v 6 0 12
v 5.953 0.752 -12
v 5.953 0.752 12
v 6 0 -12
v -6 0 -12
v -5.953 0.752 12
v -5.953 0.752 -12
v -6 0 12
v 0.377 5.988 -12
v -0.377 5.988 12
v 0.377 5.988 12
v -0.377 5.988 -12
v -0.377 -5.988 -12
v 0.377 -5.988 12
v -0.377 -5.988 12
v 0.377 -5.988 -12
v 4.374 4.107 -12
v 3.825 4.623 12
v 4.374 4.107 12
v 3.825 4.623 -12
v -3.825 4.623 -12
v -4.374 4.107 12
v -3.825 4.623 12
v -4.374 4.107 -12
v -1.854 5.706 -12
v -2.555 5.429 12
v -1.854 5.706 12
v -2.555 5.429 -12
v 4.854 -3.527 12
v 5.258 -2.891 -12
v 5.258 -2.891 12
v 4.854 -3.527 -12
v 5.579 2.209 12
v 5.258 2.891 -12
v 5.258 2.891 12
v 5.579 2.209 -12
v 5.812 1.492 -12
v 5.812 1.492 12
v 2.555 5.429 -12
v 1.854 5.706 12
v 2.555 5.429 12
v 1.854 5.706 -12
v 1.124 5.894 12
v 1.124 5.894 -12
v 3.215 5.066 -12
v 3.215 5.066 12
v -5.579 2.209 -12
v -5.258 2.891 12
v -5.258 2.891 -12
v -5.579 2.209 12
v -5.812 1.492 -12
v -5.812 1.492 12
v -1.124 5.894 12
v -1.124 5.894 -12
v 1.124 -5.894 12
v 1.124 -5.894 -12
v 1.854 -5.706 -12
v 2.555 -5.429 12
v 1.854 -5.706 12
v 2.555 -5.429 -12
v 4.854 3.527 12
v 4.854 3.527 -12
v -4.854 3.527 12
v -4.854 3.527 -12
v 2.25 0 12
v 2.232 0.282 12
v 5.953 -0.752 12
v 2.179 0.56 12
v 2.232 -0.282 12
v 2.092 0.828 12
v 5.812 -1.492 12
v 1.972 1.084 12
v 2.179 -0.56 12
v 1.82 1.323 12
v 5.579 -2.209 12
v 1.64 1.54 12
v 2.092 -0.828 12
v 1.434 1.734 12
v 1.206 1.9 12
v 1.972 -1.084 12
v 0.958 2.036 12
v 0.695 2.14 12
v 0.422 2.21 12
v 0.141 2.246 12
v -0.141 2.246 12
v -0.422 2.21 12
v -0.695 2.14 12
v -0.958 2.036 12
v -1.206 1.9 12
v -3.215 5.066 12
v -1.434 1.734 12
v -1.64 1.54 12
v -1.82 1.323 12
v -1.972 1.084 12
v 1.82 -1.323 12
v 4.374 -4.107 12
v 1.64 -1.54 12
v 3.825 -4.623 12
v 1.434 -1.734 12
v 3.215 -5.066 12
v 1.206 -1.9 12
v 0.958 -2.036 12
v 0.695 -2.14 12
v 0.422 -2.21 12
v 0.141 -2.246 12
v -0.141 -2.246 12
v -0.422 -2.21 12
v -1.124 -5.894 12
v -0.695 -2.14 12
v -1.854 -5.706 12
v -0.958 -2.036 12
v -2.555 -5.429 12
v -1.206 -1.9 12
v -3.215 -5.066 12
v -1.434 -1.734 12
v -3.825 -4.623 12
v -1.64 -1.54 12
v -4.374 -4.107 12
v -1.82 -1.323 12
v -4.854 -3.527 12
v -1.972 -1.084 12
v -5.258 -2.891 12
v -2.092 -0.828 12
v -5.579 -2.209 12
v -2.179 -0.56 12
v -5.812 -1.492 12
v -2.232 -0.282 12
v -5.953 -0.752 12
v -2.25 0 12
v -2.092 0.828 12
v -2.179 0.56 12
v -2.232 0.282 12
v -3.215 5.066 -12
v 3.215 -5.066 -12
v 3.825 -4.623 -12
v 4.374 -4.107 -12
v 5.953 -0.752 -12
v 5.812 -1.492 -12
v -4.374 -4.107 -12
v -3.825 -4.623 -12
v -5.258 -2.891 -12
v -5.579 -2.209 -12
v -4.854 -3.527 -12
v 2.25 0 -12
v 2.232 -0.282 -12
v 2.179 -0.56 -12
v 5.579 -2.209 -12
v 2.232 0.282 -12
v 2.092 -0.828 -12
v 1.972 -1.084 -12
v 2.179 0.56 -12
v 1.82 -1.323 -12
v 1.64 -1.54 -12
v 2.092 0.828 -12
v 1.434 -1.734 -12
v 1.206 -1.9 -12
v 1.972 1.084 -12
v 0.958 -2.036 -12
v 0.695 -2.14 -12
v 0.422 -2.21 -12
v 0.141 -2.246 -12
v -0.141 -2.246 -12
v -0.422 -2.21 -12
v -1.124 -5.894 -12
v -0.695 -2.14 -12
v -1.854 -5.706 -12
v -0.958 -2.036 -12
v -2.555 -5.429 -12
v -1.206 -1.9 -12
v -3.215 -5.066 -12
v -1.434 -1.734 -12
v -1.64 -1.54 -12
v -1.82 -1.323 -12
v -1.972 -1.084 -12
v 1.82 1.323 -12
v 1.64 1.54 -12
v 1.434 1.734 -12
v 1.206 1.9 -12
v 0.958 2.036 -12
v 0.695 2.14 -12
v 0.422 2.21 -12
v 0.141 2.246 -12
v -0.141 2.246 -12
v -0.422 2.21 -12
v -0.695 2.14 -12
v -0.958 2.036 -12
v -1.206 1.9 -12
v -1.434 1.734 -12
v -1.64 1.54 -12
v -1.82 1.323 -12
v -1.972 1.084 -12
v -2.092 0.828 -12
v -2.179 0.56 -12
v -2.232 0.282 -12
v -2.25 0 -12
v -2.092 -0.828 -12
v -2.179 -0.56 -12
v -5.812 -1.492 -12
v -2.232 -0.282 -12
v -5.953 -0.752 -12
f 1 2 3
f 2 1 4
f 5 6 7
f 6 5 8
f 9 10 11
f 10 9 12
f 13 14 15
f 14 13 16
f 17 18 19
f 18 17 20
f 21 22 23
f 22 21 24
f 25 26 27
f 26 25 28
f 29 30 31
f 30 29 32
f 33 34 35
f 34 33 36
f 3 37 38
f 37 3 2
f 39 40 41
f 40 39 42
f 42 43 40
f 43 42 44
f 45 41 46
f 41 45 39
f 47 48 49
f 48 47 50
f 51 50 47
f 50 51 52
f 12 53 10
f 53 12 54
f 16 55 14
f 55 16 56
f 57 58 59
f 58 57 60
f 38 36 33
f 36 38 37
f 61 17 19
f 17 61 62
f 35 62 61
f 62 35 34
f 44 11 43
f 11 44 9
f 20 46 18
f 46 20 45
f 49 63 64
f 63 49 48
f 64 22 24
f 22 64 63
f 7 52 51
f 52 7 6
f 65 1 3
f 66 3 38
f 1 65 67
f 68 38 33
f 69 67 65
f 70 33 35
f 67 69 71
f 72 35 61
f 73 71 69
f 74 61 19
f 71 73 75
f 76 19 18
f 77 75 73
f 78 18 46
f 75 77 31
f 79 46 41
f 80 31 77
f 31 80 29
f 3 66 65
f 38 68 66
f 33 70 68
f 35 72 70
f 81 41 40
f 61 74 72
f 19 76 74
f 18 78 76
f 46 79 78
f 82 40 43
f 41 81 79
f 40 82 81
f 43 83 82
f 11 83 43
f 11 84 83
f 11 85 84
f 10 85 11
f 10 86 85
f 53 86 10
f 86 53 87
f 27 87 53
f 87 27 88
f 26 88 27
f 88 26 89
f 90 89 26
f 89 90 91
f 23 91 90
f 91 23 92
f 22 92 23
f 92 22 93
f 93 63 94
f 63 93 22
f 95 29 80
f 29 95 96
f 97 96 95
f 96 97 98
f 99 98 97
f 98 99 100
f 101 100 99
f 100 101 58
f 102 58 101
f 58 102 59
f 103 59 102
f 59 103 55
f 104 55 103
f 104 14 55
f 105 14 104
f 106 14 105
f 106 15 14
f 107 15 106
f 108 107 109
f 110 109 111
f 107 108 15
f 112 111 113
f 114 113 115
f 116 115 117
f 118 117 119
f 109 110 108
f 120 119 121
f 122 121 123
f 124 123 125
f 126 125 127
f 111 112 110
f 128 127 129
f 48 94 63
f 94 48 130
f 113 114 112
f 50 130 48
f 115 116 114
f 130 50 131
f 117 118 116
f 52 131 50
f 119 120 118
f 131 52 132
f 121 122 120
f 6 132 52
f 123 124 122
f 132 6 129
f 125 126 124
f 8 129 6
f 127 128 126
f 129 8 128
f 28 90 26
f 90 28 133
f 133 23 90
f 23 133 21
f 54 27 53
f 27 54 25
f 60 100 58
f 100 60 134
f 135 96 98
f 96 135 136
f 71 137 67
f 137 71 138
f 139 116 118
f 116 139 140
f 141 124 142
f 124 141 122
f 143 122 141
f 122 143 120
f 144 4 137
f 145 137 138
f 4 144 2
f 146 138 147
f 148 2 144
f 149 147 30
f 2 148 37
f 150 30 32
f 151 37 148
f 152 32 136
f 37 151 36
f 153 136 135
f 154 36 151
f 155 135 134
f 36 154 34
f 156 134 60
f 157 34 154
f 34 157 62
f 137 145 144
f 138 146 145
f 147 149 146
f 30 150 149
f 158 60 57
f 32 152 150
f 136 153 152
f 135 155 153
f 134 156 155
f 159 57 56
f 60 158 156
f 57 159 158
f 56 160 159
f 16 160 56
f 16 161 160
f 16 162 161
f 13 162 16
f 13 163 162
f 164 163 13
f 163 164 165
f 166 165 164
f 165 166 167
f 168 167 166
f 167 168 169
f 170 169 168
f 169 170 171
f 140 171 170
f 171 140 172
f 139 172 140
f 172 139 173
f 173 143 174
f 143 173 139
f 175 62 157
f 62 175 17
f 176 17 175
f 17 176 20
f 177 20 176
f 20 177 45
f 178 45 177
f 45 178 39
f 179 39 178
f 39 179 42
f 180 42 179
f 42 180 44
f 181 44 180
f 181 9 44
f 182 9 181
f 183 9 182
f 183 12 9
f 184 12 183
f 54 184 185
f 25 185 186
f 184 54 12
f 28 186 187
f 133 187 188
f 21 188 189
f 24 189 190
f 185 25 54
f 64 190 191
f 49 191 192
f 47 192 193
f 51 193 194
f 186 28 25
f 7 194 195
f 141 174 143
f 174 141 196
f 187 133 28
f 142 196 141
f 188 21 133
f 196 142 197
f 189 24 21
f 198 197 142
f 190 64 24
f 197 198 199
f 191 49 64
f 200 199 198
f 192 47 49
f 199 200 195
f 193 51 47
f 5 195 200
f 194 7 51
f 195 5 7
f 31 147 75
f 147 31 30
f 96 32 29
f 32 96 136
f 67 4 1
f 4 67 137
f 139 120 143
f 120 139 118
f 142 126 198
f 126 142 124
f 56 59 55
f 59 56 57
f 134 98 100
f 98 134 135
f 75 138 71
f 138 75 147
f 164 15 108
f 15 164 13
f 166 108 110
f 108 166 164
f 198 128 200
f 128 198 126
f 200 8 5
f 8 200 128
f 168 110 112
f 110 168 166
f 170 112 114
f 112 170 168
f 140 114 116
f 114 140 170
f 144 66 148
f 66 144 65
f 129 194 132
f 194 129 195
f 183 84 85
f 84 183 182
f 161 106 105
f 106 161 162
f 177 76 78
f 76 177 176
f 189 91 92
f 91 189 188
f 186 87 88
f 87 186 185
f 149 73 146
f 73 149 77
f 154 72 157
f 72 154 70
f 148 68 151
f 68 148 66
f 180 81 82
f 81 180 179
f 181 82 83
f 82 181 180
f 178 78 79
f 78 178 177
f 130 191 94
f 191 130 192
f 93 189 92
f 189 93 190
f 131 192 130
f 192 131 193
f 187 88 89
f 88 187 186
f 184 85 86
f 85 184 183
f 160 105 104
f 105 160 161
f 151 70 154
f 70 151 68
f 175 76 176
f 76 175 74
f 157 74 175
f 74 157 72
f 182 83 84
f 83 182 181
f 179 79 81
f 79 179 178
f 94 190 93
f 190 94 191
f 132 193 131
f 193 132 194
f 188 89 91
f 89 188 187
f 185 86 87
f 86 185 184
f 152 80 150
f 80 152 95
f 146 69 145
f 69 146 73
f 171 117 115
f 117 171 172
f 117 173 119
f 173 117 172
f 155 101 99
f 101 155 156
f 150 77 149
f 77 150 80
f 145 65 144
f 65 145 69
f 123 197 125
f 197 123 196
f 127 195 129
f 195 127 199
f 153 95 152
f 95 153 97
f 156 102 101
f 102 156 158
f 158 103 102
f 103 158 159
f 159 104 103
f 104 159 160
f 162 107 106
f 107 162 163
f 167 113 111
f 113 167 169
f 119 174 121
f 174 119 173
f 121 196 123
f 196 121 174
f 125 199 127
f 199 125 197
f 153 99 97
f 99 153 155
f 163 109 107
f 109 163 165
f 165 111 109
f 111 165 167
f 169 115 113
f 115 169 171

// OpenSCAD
$fn = 50;


difference() {
	union() {
		translate(v = [0, 0, -12.0000000000]) {
			cylinder(h = 24, r = 6.0000000000);
		}
	}
	union() {
		translate(v = [0, 0, -100.0000000000]) {
			cylinder(h = 200, r = 2.2500000000);
		}
	}
}
